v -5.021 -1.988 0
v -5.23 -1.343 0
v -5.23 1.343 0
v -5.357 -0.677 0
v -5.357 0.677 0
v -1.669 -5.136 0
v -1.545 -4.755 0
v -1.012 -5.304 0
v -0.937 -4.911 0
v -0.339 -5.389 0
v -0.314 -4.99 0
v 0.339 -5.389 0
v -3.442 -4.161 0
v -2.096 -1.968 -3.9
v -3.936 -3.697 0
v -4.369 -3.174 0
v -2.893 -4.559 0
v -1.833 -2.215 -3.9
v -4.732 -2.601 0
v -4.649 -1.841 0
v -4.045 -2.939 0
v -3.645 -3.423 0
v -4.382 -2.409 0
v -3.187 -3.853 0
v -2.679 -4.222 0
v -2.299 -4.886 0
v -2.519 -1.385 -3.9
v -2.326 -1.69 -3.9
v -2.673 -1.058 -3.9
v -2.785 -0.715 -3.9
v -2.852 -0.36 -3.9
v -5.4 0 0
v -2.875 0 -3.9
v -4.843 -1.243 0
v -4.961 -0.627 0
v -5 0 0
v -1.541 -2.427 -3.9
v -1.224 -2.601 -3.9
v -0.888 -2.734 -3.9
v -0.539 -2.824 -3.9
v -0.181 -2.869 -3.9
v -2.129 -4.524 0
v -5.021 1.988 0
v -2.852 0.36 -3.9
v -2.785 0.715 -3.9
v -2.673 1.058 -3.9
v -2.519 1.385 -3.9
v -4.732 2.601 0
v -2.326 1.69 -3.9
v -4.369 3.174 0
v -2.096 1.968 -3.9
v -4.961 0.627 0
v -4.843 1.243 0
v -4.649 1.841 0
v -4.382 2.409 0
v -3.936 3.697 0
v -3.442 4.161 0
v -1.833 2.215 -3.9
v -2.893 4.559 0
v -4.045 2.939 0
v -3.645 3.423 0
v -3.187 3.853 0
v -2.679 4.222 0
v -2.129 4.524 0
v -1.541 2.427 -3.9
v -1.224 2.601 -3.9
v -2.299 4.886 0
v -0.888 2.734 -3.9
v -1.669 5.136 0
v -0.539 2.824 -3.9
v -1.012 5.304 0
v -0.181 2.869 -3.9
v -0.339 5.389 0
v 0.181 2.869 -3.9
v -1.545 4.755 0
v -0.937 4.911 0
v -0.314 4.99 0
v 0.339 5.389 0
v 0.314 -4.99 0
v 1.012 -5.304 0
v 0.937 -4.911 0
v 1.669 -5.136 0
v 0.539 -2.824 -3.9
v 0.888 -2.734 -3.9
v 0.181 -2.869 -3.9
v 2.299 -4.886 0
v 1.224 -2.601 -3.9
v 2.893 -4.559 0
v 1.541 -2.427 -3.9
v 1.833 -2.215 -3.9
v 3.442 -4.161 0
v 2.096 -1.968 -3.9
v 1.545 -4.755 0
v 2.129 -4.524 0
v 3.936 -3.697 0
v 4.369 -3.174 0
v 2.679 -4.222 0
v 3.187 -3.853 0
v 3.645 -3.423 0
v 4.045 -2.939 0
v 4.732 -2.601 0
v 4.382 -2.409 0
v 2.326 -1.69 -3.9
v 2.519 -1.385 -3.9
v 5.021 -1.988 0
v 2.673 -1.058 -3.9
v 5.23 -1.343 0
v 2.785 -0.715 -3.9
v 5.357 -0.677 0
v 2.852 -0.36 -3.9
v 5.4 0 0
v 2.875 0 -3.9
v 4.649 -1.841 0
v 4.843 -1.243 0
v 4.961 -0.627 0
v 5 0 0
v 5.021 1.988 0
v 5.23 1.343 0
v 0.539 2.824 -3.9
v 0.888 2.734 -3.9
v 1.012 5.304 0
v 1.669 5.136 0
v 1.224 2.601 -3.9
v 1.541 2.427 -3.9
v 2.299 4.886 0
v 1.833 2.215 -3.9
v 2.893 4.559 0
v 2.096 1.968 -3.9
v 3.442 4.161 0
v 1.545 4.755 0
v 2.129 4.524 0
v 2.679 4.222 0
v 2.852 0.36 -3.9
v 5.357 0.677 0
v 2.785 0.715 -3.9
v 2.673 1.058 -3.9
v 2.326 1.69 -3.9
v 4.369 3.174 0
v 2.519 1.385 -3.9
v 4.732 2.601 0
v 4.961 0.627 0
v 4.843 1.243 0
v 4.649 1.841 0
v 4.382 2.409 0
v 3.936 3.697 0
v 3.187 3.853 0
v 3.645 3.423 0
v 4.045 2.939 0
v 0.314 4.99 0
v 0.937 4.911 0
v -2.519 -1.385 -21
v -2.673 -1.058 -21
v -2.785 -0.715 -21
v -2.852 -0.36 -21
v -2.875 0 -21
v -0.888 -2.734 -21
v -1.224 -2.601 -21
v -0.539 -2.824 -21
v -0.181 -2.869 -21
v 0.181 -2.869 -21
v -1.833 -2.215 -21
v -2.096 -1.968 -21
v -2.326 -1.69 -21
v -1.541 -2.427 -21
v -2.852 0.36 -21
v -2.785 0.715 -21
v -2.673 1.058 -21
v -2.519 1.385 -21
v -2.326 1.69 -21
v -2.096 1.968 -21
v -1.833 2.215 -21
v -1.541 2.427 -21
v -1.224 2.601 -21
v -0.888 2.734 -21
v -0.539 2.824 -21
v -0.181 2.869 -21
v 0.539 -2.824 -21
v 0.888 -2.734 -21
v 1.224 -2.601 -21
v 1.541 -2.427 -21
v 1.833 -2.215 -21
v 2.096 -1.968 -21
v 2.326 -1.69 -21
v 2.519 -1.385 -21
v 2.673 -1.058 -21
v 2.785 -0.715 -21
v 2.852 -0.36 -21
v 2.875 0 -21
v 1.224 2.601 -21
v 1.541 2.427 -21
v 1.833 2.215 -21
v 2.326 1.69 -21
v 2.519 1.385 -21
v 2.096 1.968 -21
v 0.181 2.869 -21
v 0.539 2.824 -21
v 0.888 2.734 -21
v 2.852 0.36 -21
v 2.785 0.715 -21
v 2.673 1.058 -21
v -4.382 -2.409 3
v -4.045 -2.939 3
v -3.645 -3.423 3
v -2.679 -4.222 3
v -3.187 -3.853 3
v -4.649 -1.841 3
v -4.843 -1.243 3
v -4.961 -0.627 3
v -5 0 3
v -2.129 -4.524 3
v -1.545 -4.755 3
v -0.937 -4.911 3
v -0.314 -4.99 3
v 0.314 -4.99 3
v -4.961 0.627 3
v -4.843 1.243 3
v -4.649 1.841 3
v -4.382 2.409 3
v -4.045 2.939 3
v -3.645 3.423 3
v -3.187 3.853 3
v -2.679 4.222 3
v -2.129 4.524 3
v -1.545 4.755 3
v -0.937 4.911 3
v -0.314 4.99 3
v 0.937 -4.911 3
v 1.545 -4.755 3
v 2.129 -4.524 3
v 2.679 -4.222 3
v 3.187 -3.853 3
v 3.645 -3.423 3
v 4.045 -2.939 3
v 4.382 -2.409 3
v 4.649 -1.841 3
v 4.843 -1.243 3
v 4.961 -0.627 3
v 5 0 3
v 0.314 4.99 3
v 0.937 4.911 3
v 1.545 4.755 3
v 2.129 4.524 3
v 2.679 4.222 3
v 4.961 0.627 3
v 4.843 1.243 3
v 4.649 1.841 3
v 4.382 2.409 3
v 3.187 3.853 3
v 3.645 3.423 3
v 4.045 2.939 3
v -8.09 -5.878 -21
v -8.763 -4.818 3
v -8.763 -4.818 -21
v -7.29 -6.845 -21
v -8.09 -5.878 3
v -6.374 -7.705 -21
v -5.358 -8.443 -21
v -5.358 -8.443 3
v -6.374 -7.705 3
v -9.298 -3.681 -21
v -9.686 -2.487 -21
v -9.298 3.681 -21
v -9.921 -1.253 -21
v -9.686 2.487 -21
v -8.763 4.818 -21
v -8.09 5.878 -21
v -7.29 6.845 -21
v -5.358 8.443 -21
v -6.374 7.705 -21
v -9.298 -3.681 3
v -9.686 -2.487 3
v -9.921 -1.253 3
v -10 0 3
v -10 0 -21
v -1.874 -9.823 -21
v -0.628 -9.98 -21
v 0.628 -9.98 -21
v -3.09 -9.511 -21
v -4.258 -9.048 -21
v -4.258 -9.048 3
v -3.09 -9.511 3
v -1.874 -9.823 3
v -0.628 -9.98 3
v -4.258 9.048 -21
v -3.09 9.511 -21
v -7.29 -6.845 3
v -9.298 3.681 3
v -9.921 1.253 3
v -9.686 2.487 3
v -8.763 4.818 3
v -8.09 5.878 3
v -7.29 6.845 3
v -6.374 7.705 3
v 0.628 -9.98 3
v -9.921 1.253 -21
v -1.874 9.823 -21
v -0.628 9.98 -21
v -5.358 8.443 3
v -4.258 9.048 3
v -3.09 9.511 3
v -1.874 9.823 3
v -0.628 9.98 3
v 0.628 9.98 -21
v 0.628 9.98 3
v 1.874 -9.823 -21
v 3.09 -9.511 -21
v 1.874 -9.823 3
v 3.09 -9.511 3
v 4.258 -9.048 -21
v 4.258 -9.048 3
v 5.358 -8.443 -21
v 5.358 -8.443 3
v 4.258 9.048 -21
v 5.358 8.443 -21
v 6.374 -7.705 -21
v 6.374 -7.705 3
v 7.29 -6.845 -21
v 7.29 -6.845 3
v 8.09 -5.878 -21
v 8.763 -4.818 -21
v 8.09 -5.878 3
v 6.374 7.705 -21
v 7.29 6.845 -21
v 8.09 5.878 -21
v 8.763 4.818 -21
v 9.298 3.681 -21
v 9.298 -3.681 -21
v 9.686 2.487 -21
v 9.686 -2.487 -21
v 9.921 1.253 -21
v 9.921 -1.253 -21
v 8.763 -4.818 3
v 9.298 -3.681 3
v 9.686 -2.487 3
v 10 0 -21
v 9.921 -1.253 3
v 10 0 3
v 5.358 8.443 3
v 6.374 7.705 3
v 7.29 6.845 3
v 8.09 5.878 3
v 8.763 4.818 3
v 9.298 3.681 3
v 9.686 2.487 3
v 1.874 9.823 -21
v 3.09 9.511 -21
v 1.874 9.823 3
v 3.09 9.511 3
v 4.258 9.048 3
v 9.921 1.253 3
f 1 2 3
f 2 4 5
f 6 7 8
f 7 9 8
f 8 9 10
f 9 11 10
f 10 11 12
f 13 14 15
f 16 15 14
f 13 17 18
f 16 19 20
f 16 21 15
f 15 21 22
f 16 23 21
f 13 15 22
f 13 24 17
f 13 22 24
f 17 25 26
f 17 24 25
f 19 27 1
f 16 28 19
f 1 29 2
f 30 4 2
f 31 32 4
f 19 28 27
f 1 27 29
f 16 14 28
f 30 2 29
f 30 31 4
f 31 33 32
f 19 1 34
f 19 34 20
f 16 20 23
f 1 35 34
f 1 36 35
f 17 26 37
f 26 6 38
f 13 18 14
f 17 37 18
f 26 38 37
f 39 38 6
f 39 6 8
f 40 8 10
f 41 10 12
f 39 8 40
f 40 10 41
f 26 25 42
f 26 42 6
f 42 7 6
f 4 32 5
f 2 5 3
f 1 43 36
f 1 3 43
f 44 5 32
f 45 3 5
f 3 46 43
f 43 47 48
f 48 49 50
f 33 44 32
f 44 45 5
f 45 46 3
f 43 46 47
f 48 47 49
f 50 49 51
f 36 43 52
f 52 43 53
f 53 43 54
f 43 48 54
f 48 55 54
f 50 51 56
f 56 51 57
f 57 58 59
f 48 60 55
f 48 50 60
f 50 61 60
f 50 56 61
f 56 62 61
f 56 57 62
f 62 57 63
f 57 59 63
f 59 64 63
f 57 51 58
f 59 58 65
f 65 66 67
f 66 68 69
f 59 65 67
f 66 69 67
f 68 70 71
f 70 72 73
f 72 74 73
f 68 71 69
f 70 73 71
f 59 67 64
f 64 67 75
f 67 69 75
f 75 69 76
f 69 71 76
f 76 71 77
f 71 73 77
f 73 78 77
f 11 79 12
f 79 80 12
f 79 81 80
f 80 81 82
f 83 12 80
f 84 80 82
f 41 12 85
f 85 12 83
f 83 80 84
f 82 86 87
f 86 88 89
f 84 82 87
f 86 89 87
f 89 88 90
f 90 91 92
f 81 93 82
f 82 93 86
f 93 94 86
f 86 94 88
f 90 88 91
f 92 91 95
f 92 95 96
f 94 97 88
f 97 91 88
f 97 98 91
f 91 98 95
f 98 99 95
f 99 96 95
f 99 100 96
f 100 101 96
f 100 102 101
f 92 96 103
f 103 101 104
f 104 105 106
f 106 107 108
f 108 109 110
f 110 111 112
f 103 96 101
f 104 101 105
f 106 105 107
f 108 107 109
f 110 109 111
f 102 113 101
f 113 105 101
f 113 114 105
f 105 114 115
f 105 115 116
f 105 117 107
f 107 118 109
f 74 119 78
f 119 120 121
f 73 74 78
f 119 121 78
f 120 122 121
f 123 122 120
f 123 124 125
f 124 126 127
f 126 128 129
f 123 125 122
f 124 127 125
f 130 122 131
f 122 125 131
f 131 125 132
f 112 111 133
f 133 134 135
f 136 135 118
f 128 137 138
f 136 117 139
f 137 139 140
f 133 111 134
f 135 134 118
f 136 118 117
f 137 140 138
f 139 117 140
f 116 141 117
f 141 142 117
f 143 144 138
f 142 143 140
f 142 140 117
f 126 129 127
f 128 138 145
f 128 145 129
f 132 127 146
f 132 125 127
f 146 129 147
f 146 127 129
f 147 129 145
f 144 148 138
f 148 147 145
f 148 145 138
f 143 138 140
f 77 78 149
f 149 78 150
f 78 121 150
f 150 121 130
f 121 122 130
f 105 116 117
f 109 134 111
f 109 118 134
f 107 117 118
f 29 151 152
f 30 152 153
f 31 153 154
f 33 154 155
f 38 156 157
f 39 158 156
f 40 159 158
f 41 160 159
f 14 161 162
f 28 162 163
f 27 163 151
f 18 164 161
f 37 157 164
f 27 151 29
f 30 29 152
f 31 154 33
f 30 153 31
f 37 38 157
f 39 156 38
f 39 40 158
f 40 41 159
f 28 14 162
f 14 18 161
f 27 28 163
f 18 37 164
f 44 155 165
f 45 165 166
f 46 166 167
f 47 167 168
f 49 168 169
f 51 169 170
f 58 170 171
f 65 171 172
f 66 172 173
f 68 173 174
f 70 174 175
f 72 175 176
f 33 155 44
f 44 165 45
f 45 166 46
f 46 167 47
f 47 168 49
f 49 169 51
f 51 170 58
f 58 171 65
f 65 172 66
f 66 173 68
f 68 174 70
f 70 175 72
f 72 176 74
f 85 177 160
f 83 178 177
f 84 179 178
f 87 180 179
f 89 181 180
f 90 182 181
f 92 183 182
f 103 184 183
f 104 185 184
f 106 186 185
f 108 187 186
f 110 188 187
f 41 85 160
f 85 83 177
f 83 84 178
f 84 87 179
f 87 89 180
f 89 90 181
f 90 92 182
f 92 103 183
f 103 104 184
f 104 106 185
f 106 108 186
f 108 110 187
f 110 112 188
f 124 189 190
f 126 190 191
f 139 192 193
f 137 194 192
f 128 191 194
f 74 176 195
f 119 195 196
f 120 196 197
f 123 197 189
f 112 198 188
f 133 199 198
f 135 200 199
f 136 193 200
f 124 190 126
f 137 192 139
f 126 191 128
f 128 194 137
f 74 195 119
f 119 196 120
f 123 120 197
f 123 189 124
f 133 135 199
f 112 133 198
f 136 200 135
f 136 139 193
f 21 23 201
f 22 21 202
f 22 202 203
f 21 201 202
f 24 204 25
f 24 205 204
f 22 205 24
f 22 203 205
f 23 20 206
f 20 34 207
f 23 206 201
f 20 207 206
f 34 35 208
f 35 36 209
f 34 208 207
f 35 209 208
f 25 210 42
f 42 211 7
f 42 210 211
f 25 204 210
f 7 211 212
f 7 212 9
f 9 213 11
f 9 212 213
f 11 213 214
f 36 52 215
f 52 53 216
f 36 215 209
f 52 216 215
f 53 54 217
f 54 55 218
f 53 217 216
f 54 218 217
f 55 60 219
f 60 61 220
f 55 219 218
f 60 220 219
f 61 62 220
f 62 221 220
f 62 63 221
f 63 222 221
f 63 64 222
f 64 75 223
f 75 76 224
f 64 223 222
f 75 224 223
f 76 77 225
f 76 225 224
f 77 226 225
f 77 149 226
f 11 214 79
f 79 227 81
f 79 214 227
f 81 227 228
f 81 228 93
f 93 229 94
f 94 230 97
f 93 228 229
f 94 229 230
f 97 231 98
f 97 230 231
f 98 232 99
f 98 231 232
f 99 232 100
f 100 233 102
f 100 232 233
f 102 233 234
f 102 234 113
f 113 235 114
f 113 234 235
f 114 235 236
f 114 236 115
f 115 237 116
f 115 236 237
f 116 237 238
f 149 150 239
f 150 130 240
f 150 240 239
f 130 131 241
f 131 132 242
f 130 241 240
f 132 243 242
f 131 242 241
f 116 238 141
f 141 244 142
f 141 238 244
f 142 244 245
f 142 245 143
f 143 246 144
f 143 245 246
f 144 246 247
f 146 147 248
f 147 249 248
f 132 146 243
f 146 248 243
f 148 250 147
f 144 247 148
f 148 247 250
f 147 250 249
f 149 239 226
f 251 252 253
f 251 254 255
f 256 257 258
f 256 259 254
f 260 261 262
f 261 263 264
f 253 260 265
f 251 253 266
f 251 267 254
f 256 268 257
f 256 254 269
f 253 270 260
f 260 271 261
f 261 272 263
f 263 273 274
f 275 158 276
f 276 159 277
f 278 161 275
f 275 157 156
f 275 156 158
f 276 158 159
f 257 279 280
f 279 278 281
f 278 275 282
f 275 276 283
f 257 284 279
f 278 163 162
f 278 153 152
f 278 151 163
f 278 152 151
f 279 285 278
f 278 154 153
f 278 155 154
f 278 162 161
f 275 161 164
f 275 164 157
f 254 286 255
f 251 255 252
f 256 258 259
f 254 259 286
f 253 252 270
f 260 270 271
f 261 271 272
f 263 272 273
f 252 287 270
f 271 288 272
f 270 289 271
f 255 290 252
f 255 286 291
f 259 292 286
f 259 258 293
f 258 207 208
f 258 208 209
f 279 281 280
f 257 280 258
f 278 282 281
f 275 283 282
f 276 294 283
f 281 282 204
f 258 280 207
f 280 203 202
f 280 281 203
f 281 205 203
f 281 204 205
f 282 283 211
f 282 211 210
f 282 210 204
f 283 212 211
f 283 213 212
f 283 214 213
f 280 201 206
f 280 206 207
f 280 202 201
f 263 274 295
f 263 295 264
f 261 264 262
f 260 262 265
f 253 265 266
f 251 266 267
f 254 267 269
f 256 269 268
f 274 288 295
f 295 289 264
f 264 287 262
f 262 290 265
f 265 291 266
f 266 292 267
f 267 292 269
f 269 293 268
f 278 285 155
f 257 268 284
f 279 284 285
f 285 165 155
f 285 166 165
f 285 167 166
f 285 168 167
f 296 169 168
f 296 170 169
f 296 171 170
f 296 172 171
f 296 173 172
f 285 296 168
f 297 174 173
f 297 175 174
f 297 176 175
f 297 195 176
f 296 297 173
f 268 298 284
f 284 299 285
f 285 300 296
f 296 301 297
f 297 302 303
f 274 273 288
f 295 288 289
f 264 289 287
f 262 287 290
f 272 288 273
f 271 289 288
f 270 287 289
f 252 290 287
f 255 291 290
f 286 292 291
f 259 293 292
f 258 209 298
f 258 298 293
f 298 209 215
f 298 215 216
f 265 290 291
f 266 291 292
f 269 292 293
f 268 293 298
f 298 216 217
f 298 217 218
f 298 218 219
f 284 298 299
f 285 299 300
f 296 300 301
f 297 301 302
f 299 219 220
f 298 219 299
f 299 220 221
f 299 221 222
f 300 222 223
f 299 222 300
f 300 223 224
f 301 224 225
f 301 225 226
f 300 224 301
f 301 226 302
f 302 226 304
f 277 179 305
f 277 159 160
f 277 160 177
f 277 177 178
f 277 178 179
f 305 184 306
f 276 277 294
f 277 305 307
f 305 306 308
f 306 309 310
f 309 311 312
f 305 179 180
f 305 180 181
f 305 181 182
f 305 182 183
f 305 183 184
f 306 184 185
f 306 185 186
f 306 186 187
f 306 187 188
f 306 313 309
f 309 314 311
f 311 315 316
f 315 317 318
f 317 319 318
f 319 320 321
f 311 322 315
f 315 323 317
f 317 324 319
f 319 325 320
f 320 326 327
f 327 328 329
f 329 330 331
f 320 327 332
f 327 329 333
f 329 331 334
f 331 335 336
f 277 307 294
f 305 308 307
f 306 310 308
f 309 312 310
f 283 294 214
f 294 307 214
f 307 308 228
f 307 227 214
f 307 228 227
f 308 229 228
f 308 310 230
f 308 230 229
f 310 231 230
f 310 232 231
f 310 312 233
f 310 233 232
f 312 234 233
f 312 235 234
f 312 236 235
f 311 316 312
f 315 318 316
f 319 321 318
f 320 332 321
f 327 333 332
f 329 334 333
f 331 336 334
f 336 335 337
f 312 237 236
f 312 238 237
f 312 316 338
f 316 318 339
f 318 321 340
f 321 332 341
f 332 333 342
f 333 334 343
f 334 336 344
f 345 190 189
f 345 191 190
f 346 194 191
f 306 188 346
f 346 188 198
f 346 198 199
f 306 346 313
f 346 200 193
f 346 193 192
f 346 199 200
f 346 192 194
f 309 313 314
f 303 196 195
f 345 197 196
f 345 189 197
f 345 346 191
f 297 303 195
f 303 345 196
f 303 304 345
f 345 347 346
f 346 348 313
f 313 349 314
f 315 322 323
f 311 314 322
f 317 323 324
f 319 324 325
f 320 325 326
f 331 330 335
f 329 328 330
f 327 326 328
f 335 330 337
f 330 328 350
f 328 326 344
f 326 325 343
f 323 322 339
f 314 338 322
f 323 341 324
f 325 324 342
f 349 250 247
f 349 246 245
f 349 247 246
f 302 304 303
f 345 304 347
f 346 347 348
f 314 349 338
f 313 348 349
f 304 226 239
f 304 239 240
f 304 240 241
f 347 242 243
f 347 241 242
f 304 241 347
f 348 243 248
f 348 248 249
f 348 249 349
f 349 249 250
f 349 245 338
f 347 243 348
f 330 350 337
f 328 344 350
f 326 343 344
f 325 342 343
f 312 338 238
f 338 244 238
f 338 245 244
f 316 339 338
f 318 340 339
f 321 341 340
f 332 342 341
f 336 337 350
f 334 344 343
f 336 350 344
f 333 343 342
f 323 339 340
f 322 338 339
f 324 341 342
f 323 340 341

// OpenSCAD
$fn = 50;

difference() {
	union() {
		translate(v = [0, 0, -21.0]) {
			cylinder(h = 24, r = 10.0);
		}
	}
	union() {
		translate(v = [0, 0, 0]) {
			rotate(a = [0, 0, 0]) {
				difference() {
					union() {
						translate(v = [0, 0, -24.0]) {
							cylinder(h = 24, r = 2.6);
						}
						translate(v = [0, 0, -3.9]) {
							cylinder(h = 3.9, r1 = 2.875, r2 = 5.4);
						}
						translate(v = [0, 0, -24.0]) {
							cylinder(h = 24, r = 2.875);
						}
						translate(v = [0, 0, -24.0]) {
							cylinder(h = 24, r = 2.6);
						}
					}
					union();
				}
			}
		}
		#cylinder(h = 3, r = 5.0);
	}
}
